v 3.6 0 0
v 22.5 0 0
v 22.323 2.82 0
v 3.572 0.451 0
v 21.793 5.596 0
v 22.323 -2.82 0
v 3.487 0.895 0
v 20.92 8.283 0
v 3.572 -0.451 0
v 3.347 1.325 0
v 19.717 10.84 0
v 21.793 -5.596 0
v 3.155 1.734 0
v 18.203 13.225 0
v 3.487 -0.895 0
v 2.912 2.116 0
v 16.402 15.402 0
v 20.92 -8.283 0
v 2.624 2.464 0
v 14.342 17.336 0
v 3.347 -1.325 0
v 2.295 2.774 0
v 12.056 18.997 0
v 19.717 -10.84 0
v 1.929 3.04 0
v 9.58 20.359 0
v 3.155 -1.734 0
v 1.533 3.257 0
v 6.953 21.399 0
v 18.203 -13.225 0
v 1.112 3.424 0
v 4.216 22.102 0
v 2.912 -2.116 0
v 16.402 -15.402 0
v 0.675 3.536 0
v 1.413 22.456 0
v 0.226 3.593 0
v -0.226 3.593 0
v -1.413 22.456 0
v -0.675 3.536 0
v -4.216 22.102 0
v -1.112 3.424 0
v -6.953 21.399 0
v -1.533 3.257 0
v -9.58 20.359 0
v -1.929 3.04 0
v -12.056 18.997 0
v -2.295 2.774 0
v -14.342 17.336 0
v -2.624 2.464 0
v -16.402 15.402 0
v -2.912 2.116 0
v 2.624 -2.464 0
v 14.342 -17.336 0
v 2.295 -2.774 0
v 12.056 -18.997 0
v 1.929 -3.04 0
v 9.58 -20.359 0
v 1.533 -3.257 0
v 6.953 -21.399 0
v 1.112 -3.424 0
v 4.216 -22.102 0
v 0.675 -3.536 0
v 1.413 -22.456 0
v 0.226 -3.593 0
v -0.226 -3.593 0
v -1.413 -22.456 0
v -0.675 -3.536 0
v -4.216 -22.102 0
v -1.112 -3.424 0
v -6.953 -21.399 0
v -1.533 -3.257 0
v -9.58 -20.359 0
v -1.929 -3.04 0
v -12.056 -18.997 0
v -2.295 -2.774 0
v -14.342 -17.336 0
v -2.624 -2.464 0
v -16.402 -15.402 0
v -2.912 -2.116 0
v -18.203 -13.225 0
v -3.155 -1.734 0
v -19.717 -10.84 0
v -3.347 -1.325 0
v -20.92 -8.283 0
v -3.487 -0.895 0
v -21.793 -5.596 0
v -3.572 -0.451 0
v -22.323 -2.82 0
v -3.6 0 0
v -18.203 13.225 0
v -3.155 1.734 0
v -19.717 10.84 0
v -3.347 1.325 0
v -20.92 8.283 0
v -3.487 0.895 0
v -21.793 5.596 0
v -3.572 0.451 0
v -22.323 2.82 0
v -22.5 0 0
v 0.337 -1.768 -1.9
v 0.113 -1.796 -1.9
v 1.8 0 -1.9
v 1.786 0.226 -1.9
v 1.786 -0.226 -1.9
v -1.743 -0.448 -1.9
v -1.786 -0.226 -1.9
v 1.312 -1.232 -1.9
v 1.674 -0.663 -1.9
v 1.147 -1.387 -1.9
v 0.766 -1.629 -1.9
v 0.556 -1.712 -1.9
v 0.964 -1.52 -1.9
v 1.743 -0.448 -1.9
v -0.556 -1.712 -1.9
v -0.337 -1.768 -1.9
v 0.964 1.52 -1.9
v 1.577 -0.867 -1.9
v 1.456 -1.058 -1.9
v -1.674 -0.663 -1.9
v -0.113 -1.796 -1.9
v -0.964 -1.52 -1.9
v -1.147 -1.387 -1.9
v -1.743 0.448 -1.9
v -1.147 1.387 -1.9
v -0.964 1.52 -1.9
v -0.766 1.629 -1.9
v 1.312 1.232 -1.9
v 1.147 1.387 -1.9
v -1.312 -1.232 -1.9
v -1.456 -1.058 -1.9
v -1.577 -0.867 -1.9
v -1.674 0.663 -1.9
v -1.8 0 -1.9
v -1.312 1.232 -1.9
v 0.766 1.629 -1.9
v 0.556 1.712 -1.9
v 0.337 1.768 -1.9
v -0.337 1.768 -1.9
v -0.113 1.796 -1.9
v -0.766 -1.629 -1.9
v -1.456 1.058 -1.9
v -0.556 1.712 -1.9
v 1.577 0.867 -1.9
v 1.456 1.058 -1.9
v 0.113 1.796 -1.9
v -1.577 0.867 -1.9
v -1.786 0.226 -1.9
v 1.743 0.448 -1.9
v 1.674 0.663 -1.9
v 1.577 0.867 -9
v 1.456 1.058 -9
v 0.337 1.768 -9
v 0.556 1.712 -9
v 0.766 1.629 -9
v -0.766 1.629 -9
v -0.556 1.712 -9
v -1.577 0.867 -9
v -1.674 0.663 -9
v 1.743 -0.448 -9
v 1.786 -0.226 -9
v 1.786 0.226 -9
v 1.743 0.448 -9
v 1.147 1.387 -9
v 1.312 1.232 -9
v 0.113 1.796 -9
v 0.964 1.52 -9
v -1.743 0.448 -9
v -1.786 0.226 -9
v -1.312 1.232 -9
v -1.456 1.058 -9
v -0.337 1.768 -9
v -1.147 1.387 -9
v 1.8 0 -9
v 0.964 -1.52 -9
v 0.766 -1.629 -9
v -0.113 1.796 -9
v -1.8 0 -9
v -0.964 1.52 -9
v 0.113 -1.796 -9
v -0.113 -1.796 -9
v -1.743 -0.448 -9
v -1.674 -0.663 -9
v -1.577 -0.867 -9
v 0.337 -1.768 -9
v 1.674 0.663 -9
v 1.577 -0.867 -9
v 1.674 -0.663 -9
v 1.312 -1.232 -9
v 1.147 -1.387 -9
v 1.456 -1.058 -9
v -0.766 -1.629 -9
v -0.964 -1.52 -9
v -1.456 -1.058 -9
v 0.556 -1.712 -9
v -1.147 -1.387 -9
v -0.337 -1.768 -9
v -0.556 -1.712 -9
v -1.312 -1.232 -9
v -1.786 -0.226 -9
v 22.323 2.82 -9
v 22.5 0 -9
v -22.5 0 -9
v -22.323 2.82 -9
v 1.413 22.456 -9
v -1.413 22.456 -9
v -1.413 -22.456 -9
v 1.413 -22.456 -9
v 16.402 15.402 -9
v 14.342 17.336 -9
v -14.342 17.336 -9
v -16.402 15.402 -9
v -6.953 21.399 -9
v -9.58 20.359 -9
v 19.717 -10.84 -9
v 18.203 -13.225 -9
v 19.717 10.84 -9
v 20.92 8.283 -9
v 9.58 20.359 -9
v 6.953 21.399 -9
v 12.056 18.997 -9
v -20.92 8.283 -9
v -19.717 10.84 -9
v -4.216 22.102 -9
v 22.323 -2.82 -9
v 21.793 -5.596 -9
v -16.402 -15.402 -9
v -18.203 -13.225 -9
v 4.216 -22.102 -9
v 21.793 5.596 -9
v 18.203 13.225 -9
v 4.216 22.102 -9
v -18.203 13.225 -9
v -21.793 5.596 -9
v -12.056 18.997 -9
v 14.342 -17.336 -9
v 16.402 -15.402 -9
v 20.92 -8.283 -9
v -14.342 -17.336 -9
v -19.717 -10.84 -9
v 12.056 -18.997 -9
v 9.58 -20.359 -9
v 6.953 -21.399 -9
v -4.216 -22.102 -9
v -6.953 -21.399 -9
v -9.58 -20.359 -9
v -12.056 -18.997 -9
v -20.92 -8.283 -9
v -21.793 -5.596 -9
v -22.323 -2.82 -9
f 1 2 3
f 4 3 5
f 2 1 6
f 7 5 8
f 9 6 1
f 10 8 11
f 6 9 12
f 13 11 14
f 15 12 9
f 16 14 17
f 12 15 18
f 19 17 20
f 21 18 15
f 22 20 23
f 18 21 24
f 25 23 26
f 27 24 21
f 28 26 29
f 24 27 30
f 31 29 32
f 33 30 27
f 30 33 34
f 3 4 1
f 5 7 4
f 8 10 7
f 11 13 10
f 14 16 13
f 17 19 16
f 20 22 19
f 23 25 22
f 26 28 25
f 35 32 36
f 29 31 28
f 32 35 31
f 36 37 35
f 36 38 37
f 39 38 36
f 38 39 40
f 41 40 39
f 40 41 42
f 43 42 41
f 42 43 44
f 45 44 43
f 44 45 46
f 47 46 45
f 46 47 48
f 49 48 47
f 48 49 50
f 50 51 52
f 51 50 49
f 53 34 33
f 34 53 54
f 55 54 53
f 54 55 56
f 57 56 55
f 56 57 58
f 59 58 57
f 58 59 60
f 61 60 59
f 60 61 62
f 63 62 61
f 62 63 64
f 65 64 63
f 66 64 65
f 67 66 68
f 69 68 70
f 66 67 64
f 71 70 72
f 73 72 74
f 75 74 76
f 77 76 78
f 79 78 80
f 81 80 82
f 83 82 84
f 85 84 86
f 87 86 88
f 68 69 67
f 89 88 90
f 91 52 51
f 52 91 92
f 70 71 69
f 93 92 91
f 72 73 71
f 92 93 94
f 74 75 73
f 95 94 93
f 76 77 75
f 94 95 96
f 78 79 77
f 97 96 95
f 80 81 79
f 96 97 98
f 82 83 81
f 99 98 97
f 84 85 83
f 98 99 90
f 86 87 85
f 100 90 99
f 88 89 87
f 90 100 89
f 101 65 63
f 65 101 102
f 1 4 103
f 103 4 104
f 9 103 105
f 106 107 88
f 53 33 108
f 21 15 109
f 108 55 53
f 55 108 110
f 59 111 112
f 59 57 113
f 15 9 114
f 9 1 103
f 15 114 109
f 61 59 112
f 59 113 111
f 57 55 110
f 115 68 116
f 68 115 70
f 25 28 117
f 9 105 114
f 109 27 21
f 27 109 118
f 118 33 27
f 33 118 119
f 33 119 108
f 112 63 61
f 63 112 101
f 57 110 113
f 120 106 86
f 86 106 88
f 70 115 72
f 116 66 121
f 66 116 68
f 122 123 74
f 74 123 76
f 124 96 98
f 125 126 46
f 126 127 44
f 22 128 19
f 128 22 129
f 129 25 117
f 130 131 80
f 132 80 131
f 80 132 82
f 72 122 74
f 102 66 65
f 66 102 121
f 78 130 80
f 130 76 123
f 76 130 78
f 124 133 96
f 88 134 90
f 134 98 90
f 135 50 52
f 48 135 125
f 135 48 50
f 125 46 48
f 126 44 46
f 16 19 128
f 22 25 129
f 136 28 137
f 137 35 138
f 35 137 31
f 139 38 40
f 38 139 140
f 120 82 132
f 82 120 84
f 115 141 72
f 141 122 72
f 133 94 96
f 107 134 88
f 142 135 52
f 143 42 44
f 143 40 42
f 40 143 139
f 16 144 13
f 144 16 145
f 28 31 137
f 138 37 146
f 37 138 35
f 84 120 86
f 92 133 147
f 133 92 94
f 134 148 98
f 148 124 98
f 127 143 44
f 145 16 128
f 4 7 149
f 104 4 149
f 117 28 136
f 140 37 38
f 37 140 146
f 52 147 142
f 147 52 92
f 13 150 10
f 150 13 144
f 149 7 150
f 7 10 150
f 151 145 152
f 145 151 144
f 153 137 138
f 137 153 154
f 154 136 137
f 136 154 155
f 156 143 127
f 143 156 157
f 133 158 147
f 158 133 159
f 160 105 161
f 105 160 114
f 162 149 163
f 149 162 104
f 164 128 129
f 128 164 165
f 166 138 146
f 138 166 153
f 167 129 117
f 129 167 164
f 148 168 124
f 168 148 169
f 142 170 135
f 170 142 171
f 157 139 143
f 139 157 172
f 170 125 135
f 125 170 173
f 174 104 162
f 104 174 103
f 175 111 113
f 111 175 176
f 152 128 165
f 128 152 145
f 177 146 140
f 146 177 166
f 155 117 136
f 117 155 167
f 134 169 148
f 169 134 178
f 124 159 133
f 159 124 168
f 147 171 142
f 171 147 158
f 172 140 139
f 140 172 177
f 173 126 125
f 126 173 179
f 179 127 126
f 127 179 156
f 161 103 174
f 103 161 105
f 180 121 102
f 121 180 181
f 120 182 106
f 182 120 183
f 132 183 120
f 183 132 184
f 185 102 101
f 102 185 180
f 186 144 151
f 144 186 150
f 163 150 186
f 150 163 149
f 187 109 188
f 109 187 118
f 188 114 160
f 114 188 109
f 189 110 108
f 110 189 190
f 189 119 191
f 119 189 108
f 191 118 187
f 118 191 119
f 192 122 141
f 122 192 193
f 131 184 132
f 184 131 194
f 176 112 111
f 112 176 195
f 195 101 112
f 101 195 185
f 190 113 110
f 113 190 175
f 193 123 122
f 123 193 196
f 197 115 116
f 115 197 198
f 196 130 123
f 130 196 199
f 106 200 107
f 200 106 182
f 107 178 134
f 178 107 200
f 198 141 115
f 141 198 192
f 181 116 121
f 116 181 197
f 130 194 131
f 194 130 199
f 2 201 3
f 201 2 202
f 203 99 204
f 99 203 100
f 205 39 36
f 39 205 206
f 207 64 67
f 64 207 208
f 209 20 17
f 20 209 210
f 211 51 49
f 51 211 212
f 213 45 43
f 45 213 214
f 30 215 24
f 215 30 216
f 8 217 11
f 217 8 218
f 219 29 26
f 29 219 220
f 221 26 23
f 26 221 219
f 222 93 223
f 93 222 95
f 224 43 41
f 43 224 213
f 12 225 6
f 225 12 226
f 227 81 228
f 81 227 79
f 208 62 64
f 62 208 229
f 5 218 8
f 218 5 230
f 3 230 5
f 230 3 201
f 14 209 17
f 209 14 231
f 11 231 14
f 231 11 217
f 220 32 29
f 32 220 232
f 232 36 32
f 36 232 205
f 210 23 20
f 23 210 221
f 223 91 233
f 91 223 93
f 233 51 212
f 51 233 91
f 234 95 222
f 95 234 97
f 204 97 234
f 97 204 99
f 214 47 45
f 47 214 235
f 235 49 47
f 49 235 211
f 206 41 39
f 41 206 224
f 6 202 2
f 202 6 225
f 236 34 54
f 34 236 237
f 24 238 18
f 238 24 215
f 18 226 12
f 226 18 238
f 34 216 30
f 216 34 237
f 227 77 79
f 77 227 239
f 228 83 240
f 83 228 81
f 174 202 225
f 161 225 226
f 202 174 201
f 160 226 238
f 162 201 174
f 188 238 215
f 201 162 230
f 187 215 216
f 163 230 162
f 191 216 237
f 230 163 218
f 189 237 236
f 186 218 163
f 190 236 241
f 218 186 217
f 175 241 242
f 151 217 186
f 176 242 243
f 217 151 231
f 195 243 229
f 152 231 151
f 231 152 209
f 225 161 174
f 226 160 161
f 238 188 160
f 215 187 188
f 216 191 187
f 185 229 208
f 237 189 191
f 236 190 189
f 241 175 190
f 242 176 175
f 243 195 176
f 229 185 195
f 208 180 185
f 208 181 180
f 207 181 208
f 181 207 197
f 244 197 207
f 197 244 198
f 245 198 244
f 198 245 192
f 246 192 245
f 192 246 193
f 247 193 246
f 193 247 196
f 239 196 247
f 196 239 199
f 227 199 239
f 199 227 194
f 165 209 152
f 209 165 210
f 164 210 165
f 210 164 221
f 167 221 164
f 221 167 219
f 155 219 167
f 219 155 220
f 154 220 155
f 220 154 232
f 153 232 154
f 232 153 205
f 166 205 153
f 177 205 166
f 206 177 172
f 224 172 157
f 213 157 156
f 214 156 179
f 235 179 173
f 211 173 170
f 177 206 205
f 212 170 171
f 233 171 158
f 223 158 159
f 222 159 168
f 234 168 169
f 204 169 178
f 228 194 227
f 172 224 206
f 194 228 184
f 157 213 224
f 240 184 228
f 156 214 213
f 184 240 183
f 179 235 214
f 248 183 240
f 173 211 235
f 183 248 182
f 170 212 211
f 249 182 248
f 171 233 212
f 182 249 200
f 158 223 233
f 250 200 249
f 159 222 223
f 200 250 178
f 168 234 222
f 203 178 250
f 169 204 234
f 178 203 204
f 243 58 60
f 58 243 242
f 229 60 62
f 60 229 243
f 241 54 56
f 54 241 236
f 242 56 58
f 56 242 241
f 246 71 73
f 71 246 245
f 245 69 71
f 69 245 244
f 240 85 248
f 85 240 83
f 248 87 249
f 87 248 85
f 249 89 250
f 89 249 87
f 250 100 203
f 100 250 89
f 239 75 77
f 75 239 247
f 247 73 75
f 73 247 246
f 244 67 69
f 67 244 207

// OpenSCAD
$fn = 50;

difference() {
	union() {
		translate(v = [0, 0, -9.0]) {
			cylinder(h = 9, r = 22.5);
		}
	}
	union() {
		translate(v = [0, 0, 0]) {
			rotate(a = [0, 0, 0]) {
				difference() {
					union() {
						translate(v = [0, 0, -12.0]) {
							cylinder(h = 12, r = 1.5);
						}
						translate(v = [0, 0, -1.9]) {
							cylinder(h = 1.9, r1 = 1.8, r2 = 3.6);
						}
						translate(v = [0, 0, -12.0]) {
							cylinder(h = 12, r = 1.8);
						}
						translate(v = [0, 0, -12.0]) {
							cylinder(h = 12, r = 1.5);
						}
					}
					union();
				}
			}
		}
	}
}
